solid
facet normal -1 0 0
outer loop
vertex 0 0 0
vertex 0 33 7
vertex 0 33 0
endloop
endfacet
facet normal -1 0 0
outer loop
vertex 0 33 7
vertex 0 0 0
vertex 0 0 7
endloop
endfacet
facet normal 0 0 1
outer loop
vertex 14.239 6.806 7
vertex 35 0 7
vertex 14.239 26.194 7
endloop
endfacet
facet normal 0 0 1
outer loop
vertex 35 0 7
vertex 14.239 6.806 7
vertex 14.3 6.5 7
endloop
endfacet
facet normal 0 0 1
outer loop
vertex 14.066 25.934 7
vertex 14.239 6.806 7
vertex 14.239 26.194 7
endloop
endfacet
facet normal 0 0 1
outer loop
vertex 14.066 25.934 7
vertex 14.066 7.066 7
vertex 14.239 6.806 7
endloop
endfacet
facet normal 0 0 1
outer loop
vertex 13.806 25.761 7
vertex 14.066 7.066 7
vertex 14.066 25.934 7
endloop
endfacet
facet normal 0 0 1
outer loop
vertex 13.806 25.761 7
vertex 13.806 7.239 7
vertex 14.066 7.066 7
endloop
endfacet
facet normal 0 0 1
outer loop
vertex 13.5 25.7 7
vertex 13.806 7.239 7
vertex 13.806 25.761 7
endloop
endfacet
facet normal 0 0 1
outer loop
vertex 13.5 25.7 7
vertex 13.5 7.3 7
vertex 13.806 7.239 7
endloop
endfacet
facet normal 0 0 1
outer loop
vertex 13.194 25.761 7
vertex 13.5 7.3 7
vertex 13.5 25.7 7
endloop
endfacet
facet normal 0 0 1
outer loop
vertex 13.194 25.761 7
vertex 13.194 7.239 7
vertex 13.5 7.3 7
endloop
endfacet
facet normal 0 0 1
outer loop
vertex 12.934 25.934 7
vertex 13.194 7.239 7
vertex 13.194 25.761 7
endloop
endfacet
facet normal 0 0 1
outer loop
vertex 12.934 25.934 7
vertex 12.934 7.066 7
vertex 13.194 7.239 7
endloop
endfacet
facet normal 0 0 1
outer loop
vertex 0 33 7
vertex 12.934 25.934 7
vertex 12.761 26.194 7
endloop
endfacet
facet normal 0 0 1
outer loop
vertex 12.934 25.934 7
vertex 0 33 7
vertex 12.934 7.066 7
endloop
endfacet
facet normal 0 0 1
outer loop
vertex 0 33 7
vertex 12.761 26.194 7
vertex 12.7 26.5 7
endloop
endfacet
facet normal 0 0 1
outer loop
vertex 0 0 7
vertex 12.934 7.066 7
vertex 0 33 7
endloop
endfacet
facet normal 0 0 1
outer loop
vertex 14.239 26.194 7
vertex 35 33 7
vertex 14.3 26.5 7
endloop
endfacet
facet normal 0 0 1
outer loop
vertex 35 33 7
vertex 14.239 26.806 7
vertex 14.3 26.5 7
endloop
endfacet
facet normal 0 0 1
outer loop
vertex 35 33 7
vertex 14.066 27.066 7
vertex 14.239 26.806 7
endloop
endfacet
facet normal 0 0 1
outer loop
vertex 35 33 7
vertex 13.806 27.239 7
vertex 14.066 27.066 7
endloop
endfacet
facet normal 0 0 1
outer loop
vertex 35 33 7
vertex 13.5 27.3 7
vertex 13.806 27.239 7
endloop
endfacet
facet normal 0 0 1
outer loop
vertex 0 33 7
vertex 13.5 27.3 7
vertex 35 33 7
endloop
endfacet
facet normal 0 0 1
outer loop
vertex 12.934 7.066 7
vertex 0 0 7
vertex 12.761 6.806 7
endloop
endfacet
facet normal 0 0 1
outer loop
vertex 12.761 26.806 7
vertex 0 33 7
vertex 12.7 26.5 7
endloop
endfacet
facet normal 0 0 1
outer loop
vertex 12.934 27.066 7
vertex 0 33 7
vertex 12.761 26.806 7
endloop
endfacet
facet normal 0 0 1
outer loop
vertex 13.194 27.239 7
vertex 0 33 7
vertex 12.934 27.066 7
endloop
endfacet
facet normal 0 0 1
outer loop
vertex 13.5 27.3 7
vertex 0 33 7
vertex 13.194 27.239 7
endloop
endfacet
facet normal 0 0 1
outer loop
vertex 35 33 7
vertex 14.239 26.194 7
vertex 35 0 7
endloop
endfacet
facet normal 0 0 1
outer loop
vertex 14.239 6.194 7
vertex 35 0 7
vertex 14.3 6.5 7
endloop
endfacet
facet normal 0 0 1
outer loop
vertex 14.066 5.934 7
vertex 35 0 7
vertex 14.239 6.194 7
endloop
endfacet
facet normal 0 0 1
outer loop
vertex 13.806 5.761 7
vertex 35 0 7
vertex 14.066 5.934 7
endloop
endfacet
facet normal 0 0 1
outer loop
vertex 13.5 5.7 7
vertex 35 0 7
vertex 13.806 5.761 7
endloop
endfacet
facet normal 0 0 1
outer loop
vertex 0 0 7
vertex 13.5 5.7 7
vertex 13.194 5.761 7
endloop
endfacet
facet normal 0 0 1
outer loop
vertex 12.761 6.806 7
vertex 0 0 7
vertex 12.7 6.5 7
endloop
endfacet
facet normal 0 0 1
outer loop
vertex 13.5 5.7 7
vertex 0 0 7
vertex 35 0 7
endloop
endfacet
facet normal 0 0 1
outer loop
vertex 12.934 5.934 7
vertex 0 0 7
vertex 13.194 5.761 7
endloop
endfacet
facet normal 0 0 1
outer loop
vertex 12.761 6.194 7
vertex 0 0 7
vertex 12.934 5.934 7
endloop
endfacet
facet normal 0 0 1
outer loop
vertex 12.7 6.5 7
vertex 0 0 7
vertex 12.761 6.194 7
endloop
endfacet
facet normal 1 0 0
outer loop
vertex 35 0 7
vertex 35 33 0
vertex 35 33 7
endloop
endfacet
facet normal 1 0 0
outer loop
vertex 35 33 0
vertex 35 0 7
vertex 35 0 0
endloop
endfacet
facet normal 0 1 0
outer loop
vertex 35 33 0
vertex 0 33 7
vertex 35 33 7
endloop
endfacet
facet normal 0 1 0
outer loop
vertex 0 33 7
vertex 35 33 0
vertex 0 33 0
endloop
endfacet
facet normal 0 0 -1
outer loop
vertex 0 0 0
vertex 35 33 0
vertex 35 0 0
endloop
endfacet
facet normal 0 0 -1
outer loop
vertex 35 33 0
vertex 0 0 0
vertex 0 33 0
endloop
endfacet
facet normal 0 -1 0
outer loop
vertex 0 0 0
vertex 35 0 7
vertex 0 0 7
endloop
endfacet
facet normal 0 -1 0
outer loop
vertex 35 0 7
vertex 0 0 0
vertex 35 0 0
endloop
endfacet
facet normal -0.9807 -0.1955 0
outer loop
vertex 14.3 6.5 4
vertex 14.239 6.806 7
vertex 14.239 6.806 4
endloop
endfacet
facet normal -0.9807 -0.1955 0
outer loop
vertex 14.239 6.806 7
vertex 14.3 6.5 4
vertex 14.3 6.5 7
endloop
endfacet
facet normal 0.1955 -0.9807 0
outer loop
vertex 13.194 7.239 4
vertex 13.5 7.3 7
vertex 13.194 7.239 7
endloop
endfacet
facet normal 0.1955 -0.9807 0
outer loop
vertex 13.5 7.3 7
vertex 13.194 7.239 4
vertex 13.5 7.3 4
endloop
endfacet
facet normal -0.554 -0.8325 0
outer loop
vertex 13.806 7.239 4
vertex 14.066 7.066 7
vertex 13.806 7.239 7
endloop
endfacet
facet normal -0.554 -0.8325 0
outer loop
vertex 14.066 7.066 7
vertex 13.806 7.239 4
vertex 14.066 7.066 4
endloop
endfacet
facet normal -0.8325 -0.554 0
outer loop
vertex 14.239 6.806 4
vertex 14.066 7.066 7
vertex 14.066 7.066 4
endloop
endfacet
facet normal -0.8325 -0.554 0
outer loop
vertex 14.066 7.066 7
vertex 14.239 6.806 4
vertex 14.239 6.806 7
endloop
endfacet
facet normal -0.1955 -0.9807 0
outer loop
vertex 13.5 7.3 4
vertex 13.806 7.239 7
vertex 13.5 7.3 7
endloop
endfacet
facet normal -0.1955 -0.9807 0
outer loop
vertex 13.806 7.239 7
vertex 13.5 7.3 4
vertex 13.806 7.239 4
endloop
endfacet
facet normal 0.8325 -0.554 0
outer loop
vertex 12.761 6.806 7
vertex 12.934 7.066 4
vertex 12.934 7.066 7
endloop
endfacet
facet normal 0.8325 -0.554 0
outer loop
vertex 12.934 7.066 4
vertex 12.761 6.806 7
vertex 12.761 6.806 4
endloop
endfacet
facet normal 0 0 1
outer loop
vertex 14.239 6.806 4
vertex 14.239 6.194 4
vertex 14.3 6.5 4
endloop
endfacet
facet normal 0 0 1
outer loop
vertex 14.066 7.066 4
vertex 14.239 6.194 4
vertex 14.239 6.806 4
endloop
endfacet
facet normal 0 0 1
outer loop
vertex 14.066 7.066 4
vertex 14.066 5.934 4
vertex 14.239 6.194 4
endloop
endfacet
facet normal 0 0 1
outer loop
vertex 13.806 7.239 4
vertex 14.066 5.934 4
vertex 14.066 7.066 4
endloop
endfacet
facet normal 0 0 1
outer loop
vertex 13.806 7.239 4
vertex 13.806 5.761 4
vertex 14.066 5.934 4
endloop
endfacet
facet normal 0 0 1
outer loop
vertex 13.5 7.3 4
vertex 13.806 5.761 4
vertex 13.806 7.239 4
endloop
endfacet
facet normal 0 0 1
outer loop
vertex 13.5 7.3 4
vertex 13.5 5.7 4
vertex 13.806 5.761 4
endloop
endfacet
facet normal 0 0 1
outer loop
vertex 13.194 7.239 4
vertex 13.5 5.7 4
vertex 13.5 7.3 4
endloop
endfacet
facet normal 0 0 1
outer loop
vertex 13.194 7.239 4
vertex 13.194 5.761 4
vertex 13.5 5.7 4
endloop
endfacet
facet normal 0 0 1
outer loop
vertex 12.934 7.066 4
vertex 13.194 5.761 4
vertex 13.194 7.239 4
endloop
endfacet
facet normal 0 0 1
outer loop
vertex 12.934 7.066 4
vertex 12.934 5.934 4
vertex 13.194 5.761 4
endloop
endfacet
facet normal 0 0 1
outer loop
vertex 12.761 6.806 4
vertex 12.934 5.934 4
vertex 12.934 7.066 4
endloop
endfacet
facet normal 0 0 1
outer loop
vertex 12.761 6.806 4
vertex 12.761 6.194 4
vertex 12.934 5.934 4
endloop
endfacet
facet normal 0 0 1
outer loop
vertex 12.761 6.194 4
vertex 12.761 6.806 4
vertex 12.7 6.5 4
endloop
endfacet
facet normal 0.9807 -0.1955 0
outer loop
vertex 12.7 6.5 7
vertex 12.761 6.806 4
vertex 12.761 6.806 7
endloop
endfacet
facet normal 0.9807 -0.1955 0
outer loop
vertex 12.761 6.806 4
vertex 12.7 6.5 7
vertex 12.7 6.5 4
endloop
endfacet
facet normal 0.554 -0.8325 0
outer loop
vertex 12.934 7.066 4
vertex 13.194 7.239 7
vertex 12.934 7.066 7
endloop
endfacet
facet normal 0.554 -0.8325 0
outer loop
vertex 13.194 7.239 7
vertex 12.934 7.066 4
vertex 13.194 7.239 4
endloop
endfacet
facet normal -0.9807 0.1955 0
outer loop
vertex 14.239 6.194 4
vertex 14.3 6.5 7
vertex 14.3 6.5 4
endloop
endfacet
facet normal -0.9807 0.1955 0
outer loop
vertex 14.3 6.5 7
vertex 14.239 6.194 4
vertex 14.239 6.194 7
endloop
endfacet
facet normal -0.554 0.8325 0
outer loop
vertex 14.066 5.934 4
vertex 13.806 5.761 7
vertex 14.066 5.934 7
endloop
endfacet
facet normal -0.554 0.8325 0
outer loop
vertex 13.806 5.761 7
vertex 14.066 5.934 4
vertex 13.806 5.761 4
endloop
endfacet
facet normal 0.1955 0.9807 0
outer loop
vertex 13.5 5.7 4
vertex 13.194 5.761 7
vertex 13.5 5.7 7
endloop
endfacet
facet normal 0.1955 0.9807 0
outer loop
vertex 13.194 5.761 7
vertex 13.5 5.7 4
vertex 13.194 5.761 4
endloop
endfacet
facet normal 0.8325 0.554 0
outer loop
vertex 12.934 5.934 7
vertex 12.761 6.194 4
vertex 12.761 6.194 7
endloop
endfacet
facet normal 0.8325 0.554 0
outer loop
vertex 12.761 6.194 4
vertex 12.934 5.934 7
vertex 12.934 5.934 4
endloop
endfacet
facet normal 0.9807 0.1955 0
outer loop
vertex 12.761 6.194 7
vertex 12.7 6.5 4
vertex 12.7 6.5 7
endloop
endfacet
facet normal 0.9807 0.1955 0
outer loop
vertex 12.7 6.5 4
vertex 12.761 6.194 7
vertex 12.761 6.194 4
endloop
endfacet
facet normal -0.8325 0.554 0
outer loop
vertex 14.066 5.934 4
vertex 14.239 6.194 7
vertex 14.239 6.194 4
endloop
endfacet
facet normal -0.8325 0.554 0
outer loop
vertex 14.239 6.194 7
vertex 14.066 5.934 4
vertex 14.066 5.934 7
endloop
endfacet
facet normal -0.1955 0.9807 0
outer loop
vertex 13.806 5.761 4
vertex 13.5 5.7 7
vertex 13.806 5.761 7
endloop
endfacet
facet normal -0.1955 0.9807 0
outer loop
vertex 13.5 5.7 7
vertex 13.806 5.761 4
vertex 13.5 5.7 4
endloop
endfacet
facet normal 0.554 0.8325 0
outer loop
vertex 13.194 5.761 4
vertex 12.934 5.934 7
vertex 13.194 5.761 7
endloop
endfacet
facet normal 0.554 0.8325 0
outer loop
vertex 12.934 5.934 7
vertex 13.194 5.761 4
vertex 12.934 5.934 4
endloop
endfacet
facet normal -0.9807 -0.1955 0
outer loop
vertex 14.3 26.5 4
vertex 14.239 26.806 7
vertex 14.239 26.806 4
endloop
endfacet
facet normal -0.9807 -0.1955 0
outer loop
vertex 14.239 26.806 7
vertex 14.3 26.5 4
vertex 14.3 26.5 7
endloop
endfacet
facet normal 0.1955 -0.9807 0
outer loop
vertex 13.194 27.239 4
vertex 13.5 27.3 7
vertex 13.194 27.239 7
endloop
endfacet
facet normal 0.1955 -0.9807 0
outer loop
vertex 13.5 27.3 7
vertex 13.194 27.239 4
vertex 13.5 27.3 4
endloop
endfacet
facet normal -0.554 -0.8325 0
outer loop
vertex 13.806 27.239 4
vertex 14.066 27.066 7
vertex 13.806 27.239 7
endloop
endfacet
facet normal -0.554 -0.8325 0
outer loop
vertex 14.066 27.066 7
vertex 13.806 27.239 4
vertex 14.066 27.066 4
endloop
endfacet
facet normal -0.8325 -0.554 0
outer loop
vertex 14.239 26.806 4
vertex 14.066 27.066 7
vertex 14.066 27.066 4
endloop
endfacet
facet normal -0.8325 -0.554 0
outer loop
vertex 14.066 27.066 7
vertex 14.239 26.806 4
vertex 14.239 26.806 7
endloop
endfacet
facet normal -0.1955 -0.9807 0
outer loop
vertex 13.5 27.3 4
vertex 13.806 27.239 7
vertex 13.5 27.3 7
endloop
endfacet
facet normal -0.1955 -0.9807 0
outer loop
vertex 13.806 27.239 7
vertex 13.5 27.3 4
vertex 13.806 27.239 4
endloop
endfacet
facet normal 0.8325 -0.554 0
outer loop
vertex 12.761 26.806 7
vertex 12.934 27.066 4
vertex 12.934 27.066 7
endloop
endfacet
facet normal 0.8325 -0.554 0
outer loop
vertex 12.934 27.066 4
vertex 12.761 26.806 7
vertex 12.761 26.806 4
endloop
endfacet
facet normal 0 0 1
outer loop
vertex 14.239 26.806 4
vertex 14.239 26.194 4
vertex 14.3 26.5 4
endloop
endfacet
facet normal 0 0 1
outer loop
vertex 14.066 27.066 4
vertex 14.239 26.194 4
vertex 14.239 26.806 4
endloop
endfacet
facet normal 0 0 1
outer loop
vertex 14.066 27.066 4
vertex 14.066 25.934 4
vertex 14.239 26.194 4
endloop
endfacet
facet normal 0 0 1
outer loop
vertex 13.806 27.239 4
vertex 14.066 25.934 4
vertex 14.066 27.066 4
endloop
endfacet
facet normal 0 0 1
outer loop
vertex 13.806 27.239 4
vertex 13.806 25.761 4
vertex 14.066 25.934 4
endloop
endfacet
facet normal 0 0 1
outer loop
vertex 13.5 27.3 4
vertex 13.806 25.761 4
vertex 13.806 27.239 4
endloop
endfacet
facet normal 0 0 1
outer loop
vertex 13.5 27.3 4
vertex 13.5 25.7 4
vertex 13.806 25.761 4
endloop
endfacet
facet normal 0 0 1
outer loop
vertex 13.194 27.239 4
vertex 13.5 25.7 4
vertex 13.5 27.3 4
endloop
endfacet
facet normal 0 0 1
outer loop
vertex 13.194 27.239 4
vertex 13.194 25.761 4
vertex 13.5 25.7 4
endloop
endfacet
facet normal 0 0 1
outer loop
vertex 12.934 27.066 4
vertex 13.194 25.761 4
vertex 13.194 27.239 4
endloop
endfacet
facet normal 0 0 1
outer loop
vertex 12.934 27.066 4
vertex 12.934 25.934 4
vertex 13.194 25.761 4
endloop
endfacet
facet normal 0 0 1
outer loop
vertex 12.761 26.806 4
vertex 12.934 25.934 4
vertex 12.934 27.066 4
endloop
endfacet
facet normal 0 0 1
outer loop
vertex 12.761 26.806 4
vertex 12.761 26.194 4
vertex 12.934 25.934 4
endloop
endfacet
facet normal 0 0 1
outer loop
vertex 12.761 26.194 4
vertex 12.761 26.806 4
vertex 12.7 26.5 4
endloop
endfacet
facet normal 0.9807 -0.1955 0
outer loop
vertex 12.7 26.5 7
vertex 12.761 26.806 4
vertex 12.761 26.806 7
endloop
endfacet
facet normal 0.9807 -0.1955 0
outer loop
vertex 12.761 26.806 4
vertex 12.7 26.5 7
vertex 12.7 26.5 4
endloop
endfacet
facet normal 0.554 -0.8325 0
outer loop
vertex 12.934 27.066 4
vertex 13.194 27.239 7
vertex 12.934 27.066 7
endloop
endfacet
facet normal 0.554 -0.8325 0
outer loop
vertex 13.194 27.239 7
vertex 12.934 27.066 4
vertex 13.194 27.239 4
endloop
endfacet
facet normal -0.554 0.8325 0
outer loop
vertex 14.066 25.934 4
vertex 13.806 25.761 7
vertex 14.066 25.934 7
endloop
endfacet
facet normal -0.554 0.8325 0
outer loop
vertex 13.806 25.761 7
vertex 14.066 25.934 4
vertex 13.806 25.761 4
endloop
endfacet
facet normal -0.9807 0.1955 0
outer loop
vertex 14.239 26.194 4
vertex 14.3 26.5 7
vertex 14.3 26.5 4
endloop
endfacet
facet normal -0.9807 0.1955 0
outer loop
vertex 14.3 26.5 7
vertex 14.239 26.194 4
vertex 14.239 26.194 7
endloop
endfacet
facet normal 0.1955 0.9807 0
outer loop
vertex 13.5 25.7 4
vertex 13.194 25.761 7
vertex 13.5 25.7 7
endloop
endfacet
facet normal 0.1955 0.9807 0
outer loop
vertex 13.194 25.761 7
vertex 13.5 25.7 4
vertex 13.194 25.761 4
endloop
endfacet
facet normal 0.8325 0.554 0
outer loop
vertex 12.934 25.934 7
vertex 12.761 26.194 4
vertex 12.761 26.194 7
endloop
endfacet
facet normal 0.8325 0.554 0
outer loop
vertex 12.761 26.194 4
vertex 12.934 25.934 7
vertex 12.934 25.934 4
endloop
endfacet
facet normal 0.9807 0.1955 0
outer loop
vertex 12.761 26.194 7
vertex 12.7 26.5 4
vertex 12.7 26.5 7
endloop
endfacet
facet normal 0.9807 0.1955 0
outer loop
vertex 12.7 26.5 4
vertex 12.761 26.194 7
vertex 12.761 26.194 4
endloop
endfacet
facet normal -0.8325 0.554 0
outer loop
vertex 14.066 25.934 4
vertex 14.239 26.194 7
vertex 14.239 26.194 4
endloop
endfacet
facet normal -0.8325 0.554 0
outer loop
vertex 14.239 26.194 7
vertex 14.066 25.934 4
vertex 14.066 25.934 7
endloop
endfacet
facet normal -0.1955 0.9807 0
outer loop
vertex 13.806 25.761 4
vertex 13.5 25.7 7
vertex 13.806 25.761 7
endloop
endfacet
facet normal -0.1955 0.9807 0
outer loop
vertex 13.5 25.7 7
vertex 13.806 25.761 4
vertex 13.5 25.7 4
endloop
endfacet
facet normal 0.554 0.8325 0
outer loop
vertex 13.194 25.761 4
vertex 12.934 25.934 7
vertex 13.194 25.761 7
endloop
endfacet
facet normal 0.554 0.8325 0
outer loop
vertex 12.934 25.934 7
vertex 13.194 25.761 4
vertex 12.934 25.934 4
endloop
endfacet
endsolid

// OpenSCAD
difference(){
    cube([35,33,7]);
    translate([10,0,0]){
        difference(){
            translate([3.5,6.5,4]){
                cylinder(3,d=1.6,$fn=16);
            }
        }
    }
    translate([10,33,0]){
        difference(){
            translate([3.5,-6.5,4]){
                cylinder(3,d=1.6,$fn=16);
            }
        }
    }
}
